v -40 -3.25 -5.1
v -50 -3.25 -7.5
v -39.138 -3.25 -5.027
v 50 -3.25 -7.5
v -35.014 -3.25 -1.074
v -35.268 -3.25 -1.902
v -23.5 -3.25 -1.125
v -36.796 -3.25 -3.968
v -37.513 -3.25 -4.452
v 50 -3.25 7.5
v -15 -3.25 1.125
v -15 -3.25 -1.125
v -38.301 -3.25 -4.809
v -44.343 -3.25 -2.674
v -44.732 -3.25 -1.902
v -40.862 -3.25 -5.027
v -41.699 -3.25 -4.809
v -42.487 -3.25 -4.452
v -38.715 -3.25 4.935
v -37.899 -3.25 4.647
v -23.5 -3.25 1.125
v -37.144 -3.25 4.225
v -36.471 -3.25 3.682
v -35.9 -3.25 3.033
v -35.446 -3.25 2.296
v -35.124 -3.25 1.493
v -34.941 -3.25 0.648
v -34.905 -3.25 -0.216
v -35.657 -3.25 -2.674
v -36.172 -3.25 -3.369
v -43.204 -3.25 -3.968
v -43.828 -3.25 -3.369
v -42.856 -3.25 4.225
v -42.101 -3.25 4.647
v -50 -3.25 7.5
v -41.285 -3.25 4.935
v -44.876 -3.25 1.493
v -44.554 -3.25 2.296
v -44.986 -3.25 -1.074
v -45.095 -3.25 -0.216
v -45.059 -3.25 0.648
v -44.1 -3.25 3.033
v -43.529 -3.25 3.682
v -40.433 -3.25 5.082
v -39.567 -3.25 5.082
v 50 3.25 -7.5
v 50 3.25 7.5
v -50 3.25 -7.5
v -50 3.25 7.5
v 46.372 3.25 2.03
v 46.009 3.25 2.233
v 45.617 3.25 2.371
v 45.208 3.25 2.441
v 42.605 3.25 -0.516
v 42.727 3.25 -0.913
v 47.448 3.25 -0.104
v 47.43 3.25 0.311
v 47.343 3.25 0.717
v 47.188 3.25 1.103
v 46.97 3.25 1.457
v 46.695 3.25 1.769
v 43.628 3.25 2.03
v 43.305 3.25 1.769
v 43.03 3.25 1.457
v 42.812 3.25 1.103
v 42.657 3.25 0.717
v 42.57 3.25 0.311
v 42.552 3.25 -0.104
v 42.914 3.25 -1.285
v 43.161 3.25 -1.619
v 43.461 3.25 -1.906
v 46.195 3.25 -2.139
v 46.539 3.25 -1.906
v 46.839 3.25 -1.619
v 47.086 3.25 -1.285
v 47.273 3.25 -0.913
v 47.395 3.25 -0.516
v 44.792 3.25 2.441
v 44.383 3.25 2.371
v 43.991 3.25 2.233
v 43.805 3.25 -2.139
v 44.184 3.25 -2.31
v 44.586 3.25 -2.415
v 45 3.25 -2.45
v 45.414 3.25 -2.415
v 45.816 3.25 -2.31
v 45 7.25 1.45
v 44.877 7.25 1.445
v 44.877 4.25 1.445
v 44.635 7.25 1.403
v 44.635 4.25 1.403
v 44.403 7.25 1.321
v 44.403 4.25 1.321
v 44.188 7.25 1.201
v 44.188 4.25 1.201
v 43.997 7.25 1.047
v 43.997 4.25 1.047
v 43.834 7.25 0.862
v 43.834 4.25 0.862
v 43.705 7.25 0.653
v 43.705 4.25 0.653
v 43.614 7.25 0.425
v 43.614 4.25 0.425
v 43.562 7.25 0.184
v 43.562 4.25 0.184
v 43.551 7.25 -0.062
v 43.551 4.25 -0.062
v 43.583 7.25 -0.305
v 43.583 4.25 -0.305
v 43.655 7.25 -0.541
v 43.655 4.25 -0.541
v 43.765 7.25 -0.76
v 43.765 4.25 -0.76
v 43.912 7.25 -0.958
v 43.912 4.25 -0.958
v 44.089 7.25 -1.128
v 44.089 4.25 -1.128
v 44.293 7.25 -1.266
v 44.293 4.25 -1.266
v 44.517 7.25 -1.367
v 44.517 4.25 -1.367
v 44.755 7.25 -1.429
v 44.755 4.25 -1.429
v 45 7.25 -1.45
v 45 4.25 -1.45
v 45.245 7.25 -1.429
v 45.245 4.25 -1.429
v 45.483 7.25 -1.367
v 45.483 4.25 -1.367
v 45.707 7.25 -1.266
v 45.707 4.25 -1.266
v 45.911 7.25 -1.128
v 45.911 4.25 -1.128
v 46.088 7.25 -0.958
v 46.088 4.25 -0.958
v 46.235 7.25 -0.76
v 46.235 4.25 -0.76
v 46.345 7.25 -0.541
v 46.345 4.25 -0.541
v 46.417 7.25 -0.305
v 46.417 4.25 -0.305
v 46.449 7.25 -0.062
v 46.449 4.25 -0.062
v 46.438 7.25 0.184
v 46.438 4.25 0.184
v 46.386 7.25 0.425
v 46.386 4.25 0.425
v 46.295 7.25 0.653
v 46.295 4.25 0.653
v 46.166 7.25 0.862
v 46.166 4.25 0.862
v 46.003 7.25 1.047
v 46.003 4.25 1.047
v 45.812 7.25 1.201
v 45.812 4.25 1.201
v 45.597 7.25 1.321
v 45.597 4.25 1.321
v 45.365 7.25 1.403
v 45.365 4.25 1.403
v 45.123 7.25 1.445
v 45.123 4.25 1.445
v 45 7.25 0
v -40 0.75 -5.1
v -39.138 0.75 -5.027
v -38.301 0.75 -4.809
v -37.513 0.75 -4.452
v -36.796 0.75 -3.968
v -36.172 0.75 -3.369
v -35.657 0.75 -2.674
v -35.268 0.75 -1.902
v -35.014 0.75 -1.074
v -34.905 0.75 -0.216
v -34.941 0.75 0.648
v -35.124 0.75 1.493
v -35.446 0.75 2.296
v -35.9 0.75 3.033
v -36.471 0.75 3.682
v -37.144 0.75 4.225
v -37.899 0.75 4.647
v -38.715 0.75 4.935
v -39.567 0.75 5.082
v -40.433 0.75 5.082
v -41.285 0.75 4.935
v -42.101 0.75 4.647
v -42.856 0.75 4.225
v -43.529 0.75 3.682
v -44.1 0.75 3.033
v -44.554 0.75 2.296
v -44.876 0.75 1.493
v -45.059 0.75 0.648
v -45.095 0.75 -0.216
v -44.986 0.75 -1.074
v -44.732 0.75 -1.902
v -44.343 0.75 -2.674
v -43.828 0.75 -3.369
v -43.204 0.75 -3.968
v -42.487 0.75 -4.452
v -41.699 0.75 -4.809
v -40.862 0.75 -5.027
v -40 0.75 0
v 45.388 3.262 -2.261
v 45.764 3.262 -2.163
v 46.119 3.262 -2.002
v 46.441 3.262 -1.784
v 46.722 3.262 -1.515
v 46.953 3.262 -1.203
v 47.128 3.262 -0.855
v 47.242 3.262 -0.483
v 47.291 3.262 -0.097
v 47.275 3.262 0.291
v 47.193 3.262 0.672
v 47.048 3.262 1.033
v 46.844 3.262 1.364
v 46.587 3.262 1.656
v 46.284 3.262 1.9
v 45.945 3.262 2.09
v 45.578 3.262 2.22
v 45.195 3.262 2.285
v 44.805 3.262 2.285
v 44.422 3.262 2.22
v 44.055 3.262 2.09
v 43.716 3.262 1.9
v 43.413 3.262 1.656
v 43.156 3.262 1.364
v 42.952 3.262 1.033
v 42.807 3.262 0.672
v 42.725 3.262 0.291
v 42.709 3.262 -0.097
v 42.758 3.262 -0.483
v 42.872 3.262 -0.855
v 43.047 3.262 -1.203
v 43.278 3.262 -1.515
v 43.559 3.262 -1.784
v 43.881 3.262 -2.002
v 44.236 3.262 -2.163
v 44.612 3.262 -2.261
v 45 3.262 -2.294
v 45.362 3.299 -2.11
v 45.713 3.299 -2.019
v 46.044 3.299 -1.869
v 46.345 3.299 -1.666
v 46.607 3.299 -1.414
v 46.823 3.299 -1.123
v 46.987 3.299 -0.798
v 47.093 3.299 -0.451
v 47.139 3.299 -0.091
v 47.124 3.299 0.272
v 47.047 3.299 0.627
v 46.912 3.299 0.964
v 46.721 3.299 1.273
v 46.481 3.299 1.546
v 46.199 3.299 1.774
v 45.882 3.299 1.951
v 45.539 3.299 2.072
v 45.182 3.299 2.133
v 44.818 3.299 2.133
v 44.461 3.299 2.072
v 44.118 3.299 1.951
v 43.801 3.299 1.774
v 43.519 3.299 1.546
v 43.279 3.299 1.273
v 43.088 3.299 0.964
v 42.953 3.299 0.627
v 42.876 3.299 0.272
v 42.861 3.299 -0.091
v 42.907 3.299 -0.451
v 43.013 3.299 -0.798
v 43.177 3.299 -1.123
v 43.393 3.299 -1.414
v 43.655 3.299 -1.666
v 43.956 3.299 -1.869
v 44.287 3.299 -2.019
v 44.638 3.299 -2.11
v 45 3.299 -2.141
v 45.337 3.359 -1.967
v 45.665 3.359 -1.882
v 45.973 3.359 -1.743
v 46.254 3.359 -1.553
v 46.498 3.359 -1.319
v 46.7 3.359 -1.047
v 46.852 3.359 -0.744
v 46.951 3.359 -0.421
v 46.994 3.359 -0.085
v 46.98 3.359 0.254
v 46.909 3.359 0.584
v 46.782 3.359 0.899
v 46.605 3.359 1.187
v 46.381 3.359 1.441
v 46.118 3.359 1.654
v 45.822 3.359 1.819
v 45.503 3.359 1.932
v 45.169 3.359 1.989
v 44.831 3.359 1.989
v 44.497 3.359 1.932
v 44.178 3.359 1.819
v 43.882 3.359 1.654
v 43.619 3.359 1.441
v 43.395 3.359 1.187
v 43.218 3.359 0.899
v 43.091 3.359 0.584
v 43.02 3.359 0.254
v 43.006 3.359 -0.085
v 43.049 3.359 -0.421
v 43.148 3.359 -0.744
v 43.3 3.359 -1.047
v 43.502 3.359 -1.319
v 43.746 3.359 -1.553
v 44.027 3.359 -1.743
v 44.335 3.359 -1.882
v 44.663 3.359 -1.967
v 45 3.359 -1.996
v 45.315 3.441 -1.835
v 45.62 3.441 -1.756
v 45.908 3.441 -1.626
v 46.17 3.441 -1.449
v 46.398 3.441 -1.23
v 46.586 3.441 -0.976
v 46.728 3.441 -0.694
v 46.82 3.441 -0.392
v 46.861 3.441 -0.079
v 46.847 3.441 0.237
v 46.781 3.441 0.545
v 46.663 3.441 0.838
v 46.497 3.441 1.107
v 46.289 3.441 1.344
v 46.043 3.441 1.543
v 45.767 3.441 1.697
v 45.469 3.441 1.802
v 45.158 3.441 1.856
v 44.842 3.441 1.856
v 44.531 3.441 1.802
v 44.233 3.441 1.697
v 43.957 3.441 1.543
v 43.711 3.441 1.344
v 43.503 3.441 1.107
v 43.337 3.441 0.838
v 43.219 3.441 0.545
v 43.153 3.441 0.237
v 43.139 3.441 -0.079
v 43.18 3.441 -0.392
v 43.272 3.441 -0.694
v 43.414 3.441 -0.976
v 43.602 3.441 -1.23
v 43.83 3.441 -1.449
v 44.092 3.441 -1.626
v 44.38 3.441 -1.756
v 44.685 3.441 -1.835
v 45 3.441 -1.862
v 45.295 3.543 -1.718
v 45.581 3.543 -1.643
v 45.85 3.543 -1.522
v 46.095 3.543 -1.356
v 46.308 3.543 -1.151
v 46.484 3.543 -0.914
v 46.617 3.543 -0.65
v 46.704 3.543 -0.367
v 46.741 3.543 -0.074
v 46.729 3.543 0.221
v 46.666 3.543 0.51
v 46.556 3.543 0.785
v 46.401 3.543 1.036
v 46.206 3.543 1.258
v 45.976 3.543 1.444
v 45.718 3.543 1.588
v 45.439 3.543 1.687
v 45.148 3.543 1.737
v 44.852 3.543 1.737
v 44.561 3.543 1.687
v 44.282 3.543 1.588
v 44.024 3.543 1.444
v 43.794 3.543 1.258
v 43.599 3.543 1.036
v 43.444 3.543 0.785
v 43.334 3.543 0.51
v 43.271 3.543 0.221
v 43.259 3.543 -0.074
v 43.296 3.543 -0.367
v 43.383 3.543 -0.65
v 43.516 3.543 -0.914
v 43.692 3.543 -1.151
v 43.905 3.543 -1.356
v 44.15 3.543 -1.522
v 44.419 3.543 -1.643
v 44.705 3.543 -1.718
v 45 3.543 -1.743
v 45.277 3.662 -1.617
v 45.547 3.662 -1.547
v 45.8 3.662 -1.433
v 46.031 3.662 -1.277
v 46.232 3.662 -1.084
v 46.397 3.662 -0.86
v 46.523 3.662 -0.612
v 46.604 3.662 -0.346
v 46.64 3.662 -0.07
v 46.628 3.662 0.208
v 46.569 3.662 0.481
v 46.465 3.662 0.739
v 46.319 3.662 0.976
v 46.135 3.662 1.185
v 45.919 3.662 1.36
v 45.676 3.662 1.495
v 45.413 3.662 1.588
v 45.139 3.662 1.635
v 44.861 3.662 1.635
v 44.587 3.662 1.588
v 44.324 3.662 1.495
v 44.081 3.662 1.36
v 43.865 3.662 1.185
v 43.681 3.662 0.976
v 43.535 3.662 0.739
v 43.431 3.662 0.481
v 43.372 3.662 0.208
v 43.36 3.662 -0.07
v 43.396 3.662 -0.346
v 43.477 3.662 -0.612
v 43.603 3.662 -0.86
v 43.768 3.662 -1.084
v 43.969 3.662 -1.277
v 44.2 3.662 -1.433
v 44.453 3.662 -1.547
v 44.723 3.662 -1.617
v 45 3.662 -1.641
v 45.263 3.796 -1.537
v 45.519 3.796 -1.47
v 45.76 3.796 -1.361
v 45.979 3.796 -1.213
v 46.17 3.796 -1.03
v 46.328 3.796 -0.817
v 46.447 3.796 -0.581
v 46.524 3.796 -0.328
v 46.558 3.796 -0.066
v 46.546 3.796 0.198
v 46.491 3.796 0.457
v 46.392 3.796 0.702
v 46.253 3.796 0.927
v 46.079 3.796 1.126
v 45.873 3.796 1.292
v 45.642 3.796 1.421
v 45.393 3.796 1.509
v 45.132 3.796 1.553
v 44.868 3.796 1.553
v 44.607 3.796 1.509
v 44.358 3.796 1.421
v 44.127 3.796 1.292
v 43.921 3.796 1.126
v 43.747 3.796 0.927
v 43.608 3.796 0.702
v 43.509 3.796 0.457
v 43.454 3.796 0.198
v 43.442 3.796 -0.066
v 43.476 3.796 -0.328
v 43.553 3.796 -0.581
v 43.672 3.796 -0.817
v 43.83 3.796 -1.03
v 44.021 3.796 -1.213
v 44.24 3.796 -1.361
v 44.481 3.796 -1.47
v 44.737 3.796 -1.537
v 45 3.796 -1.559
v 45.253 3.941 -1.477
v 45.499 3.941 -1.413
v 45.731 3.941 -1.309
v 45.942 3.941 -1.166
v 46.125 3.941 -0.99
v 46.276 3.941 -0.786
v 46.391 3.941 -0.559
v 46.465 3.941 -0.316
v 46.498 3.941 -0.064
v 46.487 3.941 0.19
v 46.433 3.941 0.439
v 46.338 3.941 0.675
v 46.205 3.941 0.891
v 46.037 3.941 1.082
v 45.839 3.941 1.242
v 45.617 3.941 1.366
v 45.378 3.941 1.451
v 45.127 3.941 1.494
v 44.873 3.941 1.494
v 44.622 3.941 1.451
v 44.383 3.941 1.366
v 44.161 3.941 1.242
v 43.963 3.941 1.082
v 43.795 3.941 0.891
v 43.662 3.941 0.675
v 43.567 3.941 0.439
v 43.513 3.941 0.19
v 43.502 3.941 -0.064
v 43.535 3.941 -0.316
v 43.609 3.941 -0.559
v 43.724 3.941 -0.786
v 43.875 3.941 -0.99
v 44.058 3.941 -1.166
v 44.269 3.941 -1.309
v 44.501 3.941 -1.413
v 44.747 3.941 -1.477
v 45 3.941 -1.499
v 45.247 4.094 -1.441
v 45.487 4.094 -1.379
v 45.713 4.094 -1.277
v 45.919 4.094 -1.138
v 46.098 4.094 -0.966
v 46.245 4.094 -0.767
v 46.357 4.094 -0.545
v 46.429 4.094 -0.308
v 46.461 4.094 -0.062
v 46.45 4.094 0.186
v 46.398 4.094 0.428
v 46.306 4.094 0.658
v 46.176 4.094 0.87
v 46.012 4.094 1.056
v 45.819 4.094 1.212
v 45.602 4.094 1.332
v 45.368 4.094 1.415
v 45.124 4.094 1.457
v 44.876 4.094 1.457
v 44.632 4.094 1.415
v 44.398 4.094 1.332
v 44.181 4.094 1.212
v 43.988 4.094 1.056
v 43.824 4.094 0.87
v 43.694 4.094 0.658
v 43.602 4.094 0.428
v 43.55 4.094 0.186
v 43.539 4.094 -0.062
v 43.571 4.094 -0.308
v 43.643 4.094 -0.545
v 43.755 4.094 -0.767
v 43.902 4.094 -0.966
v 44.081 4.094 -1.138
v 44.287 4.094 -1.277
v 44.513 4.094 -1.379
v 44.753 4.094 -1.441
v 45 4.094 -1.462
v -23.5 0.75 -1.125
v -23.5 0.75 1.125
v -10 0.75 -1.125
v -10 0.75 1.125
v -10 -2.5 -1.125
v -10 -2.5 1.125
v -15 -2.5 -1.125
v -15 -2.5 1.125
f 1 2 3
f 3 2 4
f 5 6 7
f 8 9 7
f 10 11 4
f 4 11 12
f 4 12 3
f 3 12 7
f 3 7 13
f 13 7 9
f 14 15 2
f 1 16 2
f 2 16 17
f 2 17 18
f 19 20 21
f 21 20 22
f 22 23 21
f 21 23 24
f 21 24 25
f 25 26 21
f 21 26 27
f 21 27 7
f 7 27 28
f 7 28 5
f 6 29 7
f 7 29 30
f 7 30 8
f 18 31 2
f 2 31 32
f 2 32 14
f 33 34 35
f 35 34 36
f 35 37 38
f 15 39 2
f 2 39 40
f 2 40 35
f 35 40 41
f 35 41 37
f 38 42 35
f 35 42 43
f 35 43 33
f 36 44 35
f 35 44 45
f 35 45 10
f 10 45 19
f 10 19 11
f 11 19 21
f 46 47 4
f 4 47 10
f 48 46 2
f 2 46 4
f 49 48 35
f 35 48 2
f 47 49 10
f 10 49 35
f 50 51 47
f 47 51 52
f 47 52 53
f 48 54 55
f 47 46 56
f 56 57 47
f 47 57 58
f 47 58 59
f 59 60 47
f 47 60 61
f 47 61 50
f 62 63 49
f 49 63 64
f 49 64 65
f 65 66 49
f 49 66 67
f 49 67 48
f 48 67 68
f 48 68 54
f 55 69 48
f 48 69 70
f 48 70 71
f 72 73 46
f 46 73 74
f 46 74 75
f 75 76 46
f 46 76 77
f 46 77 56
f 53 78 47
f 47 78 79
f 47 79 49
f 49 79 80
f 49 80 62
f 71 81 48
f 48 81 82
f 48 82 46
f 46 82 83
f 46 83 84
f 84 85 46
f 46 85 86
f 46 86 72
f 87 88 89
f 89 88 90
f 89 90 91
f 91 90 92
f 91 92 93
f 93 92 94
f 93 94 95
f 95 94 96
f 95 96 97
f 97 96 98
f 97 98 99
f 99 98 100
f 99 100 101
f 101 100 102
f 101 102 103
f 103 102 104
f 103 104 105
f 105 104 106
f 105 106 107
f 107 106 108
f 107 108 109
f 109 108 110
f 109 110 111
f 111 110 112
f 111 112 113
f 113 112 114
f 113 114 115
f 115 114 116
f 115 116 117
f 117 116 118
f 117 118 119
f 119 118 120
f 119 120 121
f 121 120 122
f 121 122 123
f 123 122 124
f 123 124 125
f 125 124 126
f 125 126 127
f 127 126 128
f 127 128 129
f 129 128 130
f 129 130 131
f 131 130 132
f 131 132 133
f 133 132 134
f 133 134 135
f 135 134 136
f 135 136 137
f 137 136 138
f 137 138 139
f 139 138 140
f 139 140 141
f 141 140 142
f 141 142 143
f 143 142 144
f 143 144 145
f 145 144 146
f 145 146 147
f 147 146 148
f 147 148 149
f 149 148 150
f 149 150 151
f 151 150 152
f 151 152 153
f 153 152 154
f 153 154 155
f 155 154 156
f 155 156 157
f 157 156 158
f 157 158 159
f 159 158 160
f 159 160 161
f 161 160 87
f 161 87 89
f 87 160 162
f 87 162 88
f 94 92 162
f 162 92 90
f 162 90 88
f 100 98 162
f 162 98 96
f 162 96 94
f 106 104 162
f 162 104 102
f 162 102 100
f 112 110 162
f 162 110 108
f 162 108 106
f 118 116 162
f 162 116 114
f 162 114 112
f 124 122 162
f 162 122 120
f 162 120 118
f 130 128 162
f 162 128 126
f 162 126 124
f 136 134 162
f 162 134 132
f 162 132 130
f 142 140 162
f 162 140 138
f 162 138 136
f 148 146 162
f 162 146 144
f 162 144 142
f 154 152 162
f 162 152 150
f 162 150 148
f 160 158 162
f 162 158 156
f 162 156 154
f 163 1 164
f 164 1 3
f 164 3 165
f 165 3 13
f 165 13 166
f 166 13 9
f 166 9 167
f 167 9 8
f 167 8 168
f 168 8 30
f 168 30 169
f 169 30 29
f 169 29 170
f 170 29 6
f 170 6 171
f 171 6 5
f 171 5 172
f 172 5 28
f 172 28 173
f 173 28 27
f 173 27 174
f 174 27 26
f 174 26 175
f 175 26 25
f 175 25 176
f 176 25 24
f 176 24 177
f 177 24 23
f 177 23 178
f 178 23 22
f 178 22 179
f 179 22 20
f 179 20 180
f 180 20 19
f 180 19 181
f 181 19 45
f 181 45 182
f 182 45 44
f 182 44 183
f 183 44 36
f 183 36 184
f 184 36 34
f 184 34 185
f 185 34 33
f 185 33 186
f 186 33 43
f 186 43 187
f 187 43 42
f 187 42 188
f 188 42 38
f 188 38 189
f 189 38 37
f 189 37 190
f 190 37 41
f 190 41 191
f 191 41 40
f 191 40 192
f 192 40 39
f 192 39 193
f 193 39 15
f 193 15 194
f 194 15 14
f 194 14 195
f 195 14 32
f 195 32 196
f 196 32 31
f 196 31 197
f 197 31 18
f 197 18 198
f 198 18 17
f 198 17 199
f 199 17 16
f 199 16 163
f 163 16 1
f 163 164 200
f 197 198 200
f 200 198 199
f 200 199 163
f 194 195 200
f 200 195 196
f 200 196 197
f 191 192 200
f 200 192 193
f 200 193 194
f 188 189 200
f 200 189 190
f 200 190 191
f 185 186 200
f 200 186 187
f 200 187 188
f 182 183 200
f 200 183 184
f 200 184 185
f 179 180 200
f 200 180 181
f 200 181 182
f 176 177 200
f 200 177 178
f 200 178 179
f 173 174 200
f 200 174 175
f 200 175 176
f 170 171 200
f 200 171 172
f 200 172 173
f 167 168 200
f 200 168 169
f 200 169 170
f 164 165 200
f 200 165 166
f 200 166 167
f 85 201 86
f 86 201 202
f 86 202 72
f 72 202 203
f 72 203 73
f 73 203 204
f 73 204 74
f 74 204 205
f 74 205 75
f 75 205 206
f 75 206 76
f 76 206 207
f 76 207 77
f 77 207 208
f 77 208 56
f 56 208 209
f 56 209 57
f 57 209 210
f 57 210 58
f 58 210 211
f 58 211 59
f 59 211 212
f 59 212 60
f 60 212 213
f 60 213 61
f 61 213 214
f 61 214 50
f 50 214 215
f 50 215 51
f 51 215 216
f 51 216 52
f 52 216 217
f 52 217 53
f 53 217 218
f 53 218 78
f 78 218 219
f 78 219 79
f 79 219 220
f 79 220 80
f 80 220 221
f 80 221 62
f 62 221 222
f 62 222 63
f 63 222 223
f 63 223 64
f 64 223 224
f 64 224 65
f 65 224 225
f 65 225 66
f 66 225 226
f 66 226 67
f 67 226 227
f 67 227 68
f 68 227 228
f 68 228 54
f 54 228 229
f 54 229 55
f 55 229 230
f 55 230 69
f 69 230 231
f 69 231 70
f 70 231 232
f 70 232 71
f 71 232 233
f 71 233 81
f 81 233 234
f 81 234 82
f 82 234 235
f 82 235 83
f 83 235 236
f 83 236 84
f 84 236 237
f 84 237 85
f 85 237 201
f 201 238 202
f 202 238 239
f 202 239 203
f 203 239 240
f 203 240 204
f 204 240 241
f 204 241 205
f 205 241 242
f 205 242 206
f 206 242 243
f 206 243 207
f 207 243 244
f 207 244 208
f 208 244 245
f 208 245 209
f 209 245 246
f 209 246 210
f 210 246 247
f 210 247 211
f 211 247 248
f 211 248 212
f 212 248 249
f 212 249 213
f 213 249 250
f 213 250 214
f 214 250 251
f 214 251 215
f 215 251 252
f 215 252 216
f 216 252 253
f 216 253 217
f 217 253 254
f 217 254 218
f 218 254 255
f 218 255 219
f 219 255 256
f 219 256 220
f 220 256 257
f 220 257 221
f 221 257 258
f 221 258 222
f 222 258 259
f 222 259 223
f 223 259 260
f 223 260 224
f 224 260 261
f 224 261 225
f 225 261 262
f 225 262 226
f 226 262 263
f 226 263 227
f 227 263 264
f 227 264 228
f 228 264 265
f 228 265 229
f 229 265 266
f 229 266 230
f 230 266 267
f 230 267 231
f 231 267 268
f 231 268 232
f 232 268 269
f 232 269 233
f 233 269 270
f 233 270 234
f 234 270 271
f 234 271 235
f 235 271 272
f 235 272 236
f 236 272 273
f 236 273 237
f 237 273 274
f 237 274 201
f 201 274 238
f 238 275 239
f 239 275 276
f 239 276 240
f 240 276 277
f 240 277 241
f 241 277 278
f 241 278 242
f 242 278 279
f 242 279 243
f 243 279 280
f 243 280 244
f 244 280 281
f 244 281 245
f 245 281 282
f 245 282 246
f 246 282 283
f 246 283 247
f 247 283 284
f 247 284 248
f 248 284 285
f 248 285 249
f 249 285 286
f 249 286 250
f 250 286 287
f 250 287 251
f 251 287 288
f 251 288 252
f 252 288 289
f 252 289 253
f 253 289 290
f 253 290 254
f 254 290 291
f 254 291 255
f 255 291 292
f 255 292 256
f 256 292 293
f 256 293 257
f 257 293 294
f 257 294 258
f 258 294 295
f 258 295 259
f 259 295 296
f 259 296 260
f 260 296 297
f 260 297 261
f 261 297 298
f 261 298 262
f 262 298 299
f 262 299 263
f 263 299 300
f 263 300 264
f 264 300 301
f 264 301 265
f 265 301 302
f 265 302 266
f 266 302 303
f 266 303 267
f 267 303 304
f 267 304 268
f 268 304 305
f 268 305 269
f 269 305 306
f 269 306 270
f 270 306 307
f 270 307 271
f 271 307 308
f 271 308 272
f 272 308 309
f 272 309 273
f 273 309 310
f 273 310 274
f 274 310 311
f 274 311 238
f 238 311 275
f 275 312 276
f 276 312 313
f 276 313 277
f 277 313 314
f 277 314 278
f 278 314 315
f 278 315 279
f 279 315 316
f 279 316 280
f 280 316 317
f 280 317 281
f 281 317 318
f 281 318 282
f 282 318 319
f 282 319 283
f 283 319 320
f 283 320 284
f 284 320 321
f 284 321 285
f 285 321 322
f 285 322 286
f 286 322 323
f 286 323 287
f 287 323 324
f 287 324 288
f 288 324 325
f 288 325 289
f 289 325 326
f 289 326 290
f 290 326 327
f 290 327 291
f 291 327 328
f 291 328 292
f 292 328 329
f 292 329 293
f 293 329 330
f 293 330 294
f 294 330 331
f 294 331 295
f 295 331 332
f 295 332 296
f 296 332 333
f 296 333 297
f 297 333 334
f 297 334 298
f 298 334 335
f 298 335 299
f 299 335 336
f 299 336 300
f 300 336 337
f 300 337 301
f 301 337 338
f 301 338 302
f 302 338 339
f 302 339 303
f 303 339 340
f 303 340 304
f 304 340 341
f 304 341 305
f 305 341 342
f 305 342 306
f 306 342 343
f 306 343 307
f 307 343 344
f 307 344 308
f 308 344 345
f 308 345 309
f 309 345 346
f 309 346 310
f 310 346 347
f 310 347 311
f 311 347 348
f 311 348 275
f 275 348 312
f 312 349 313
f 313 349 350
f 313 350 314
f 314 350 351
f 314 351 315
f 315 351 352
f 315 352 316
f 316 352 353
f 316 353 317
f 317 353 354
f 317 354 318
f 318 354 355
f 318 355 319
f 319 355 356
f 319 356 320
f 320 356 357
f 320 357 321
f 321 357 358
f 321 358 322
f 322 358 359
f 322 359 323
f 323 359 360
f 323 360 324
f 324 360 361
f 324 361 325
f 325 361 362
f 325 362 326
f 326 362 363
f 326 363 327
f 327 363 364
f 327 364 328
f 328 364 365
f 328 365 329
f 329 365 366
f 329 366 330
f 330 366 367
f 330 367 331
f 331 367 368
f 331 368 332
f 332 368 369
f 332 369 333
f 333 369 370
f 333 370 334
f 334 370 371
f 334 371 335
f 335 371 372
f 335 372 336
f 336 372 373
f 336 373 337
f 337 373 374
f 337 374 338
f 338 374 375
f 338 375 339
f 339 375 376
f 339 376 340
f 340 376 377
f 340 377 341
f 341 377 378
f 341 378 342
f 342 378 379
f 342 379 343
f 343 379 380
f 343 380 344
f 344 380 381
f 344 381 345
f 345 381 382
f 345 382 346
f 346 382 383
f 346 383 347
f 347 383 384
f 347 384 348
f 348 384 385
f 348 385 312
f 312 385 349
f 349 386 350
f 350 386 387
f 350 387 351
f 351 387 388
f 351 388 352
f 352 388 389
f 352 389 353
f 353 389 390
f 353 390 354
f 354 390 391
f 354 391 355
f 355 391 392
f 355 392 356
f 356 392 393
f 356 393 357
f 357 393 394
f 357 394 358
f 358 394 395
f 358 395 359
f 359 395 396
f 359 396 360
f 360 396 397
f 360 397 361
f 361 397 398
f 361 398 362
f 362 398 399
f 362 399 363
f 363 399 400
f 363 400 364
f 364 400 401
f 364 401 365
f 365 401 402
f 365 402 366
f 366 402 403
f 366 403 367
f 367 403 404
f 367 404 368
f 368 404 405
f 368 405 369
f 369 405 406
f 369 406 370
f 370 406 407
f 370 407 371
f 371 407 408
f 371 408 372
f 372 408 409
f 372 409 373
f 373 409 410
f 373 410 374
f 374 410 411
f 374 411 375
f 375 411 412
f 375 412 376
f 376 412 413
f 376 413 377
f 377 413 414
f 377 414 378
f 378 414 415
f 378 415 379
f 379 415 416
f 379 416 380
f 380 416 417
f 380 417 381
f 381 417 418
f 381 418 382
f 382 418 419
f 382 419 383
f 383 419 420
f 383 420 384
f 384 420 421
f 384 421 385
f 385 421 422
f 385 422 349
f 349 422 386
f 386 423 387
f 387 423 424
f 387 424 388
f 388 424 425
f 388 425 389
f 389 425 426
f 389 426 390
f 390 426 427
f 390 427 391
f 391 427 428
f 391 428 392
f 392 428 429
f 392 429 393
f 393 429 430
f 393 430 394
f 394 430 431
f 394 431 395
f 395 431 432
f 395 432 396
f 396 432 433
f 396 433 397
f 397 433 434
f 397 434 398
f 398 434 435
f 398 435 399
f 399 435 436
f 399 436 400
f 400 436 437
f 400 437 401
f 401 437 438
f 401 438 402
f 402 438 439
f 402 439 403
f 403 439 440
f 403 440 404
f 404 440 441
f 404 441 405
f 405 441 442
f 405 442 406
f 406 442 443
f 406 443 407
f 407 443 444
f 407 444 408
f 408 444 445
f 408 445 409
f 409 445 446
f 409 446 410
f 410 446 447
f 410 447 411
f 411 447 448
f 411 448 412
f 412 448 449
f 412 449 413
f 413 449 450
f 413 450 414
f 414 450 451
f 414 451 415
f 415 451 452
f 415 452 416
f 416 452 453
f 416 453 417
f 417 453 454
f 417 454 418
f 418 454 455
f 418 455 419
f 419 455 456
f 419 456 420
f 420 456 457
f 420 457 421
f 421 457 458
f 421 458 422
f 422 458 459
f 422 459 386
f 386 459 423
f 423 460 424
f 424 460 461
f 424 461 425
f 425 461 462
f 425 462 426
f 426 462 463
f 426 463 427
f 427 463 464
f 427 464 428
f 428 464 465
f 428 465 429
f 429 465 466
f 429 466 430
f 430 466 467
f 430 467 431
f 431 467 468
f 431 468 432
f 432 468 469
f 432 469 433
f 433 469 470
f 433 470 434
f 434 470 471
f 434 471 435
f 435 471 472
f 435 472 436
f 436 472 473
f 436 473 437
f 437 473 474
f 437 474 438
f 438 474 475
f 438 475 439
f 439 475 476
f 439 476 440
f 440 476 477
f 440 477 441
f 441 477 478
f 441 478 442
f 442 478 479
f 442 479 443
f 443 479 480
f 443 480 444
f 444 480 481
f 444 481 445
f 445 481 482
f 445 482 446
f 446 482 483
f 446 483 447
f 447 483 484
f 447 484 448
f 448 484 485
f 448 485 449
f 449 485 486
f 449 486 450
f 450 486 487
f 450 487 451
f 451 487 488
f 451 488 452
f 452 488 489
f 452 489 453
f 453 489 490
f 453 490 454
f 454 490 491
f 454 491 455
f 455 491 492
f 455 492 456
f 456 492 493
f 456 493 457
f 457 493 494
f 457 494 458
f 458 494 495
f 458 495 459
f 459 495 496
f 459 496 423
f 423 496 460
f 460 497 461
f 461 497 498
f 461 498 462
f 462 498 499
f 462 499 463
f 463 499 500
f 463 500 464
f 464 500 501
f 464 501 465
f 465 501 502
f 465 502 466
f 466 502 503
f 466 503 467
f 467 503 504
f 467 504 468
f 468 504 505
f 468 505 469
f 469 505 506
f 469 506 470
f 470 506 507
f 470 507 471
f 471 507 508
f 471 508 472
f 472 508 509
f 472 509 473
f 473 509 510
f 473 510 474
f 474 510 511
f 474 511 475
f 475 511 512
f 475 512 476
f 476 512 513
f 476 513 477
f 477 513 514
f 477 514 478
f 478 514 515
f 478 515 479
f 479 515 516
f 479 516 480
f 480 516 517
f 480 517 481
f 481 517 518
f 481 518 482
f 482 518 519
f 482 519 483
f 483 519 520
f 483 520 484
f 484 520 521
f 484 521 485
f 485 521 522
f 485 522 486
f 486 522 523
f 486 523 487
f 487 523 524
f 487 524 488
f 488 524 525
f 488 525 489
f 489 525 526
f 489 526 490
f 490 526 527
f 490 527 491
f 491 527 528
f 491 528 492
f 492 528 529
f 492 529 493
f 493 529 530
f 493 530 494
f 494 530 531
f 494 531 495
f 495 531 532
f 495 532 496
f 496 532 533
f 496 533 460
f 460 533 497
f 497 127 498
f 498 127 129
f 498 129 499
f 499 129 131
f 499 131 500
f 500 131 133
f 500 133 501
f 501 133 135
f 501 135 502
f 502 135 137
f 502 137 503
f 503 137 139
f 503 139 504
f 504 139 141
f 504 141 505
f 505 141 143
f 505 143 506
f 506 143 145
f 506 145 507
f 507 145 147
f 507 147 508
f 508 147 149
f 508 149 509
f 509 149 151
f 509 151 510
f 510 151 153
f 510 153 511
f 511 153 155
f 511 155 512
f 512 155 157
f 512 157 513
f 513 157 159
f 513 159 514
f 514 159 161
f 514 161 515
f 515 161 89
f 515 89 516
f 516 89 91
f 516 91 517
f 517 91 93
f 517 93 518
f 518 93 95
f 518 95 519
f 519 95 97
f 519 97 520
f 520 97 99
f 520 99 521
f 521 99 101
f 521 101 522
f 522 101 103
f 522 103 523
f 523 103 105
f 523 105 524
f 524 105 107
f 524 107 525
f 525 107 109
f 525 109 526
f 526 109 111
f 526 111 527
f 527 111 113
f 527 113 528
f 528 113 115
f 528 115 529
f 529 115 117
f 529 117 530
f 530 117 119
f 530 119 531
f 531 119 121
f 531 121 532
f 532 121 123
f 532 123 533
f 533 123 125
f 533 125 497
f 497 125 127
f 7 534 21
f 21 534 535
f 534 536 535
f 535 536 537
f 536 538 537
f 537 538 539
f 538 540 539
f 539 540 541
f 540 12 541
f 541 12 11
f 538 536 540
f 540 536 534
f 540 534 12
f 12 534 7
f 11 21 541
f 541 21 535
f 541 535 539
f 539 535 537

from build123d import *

# Parameters (mm, degrees)
SKETCH2_W           = 100
SKETCH2_H           = 15
BOSS_EXTRUDE1_DEPTH = 3.25
SKETCH4_R           = 1.45
BOSS_EXTRUDE2_DEPTH = 4
SKETCH5_R           = 5.1
CUT_EXTRUDE1_DEPTH  = 4
FILLET1_R           = 1
SKETCH6_W           = 8.5
SKETCH6_H           = 4
SKETCH6_W_2         = 5
SKETCH6_H_2         = 3.25
CUT_EXTRUDE3_DEPTH  = 1.125


with BuildPart() as part:
    # Sketch2 → Boss-Extrude1 (new, symmetric)
    with BuildSketch(Plane(origin=(0, 0, 0), x_dir=(1, 0, 0), z_dir=(0, 1, 0))):
        Rectangle(SKETCH2_W, SKETCH2_H)
    extrude(amount=BOSS_EXTRUDE1_DEPTH, both=True)

    # Sketch4 → Boss-Extrude2 (add)
    with BuildSketch(Plane(origin=(0, 3.25, 0), x_dir=(1, 0, 0), z_dir=(0, 1, 0))):
        with Locations(Location((45, 0, 0), (0, 0, 90))):
            Circle(SKETCH4_R)
    extrude(amount=BOSS_EXTRUDE2_DEPTH)

    # Sketch5 → Cut-Extrude1 (cut)
    with BuildSketch(Plane(origin=(0, -3.25, 0), x_dir=(-1, 0, 0), z_dir=(0, -1, 0))):
        with Locations(Location((40, 0, 0), (0, 0, 90))):
            Circle(SKETCH5_R)
    extrude(amount=-CUT_EXTRUDE1_DEPTH, mode=Mode.SUBTRACT)

    # Fillet1
    fillet1_edges = [part.edges().sort_by_distance(p)[0] for p in [
        (45, 3.25, 1.45),
    ]]
    fillet(fillet1_edges, radius=FILLET1_R)

    # Sketch6 → Cut-Extrude3 (cut, symmetric)
    with BuildSketch(Plane.XY):
        with Locations((-19.25, -1.25)):
            Rectangle(SKETCH6_W, SKETCH6_H)
        with Locations((-12.5, -0.875)):
            Rectangle(SKETCH6_W_2, SKETCH6_H_2)
    extrude(amount=CUT_EXTRUDE3_DEPTH, both=True, mode=Mode.SUBTRACT)


solid = part.part
